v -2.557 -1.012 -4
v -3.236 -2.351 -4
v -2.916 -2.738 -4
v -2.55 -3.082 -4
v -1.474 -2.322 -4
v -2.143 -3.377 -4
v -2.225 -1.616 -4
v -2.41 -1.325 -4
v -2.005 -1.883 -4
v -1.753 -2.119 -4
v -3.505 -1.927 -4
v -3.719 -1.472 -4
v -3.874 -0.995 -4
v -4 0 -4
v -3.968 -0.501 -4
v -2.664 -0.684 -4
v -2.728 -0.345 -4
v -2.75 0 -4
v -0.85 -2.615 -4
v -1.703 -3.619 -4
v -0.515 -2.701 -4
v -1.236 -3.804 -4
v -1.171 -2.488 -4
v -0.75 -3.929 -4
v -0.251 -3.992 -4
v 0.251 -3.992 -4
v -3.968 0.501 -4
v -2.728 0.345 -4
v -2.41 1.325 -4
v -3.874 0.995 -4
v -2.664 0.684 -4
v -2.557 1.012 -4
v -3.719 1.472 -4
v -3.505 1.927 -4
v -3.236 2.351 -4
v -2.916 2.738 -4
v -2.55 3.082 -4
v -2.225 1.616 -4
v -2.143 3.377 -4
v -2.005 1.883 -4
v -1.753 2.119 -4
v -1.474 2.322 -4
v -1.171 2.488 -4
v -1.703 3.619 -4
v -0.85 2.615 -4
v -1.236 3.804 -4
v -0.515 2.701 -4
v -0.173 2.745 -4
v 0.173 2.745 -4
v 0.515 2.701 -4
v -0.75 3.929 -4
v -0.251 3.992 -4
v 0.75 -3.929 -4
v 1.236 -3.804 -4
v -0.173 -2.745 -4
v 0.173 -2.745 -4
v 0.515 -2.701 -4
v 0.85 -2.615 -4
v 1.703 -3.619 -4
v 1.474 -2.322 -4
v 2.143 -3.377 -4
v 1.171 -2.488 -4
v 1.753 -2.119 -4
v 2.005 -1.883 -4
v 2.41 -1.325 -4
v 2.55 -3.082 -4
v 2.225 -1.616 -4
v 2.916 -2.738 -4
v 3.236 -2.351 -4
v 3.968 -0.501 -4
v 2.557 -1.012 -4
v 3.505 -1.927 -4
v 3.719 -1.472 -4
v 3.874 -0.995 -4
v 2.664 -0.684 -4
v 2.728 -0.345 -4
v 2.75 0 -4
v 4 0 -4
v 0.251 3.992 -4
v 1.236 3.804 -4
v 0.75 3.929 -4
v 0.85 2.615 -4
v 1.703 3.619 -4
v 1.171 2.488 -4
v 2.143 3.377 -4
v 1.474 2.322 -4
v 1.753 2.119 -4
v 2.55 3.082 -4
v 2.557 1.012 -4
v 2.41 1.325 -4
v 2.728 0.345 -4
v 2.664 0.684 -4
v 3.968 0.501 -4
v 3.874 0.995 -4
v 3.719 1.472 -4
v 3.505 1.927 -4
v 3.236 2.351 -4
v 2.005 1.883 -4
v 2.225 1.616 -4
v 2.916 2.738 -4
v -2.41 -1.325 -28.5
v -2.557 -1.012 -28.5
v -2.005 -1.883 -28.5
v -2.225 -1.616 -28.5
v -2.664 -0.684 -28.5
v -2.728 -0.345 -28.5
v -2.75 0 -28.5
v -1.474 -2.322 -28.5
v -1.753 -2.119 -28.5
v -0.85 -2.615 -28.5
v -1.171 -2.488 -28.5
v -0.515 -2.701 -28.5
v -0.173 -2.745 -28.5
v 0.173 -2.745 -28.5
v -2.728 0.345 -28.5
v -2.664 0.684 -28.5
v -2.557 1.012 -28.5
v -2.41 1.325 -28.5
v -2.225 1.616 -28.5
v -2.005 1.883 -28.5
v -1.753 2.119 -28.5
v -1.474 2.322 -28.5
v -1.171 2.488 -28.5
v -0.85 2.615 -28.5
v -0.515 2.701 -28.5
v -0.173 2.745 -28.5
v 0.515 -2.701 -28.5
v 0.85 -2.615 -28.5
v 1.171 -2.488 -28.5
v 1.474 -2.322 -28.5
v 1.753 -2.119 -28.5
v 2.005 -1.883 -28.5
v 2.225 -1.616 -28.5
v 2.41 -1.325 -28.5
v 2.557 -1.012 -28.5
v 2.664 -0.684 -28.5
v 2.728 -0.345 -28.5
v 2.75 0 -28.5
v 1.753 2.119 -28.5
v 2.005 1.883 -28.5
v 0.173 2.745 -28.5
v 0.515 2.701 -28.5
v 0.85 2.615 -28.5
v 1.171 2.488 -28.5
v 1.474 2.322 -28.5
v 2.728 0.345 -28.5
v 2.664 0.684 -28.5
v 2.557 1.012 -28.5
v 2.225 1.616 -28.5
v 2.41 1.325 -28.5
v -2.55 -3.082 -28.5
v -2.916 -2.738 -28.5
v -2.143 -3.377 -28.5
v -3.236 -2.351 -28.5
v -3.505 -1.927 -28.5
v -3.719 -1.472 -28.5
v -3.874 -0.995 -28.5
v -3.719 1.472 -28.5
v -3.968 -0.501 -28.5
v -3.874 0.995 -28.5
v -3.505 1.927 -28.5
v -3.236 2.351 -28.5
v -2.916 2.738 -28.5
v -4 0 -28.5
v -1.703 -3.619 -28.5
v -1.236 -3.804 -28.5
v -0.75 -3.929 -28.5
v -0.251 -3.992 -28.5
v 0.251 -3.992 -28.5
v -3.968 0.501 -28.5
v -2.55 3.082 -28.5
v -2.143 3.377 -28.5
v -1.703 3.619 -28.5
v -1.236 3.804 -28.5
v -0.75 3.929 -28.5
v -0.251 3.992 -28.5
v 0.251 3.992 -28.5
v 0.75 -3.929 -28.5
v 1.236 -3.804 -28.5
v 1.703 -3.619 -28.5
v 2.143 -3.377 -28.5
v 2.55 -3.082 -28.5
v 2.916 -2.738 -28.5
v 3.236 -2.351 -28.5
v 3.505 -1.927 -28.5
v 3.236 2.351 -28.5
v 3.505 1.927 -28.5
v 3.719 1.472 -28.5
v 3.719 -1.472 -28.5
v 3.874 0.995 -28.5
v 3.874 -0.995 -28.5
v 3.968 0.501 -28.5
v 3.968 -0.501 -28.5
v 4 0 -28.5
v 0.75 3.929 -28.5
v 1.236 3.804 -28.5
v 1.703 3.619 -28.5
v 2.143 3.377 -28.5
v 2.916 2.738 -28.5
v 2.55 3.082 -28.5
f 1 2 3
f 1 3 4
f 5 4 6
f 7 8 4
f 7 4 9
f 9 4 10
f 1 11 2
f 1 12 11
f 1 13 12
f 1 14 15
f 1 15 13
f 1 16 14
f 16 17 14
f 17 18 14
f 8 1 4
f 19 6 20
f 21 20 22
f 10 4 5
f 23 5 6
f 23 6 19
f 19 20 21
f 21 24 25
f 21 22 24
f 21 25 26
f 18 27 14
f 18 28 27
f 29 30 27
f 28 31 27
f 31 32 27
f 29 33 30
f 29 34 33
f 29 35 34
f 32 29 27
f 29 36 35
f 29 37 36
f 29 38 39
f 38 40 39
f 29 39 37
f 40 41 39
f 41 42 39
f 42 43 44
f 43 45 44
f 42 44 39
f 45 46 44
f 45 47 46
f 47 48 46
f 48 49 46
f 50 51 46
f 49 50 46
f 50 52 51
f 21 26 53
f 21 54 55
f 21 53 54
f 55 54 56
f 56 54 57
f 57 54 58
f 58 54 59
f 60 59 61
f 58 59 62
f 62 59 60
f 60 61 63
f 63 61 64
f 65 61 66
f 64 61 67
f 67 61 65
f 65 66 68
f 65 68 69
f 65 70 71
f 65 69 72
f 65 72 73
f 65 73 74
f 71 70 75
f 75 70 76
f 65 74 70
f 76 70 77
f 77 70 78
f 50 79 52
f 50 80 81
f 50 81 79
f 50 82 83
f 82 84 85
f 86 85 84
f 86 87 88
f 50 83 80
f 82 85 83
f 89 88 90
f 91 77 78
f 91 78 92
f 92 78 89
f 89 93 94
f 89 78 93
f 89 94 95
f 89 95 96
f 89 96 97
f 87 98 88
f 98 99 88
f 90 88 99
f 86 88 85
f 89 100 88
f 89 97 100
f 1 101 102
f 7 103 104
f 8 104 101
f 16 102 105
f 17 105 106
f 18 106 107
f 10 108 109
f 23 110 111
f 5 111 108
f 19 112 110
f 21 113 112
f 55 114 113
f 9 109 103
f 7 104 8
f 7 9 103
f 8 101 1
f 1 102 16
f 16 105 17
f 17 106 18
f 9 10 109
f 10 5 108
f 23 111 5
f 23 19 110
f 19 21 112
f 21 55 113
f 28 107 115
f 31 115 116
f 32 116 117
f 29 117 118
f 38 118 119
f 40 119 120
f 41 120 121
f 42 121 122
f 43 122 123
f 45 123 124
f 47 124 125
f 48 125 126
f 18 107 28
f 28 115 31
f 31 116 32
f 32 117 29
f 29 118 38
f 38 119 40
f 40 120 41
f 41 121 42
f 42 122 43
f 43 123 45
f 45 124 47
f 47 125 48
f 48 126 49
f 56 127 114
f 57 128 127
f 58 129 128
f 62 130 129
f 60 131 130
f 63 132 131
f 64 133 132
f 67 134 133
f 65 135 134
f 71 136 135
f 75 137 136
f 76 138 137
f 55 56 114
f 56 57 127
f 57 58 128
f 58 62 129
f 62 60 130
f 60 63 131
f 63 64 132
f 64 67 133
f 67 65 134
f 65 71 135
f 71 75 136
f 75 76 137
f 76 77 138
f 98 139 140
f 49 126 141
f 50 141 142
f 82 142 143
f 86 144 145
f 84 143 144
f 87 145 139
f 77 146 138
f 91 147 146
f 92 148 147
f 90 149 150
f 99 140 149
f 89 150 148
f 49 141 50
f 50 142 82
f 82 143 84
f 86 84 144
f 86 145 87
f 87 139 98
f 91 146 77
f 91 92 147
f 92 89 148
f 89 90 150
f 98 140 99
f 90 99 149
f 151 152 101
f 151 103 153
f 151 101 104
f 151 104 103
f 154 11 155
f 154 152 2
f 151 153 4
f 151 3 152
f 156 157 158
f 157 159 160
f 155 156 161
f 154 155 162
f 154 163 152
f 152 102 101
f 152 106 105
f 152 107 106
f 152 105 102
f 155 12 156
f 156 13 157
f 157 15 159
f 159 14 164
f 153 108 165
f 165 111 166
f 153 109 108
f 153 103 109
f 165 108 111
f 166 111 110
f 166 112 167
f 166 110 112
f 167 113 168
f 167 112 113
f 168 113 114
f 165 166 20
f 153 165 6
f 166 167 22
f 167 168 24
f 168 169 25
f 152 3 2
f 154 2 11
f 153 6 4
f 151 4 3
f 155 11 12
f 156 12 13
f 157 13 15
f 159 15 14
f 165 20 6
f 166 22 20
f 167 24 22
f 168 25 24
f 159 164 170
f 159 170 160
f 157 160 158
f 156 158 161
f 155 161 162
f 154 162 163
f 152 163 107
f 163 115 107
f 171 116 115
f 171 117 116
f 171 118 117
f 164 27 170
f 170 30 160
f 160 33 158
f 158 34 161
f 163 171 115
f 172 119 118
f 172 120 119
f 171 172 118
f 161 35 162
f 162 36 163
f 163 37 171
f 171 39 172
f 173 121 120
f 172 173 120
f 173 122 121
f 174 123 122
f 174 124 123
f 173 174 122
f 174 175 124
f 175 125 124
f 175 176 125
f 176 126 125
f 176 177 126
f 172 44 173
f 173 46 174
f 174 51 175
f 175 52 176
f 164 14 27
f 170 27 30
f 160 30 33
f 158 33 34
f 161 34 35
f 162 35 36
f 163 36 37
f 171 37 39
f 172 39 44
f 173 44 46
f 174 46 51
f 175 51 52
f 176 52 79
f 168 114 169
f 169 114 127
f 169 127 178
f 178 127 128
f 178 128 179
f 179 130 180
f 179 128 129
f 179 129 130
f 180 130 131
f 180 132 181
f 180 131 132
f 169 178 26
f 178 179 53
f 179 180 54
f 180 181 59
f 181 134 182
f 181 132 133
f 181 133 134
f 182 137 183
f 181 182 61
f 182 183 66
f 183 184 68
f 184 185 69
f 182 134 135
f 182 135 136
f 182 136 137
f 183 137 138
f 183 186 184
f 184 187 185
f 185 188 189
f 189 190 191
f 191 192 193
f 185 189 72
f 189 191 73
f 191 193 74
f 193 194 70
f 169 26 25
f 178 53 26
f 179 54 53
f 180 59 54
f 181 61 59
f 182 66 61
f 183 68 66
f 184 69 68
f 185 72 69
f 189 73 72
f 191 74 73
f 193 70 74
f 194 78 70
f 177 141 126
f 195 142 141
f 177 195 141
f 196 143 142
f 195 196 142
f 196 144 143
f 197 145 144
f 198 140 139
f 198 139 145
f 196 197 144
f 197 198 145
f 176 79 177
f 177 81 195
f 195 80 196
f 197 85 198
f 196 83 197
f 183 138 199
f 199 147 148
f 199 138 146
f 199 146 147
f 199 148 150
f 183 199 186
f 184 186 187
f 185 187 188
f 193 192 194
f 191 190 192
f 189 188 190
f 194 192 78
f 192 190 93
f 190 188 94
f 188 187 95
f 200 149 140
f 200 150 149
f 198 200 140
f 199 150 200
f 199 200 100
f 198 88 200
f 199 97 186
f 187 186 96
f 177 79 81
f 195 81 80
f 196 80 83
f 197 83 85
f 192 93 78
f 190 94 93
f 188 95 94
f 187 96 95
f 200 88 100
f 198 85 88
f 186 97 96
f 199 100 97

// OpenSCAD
$fn = 50;

difference() {
	union() {
		translate(v = [0, 0, -28.5]) {
			cylinder(h = 31.5, r = 4.0);
		}
	}
	union() {
		translate(v = [0, 0, 0]) {
			rotate(a = [0, 0, 0]) {
				difference() {
					union() {
						translate(v = [0, 0, -4]) {
							linear_extrude(height = 4) {
								polygon(points = [[4.8468, 0.0], [2.4234000000000004, 4.197451927062417], [-2.423399999999999, 4.197451927062417], [-4.8468, 5.935618106107392e-16], [-2.423400000000002, -4.197451927062416], [2.423399999999997, -4.197451927062419]]);
							}
						}
					}
					union();
				}
			}
		}
		#cylinder(h = 3, r = 6.25);
		#translate(v = [0, 0, -100.0]) {
			cylinder(h = 200, r = 2.75);
		}
	}
}
